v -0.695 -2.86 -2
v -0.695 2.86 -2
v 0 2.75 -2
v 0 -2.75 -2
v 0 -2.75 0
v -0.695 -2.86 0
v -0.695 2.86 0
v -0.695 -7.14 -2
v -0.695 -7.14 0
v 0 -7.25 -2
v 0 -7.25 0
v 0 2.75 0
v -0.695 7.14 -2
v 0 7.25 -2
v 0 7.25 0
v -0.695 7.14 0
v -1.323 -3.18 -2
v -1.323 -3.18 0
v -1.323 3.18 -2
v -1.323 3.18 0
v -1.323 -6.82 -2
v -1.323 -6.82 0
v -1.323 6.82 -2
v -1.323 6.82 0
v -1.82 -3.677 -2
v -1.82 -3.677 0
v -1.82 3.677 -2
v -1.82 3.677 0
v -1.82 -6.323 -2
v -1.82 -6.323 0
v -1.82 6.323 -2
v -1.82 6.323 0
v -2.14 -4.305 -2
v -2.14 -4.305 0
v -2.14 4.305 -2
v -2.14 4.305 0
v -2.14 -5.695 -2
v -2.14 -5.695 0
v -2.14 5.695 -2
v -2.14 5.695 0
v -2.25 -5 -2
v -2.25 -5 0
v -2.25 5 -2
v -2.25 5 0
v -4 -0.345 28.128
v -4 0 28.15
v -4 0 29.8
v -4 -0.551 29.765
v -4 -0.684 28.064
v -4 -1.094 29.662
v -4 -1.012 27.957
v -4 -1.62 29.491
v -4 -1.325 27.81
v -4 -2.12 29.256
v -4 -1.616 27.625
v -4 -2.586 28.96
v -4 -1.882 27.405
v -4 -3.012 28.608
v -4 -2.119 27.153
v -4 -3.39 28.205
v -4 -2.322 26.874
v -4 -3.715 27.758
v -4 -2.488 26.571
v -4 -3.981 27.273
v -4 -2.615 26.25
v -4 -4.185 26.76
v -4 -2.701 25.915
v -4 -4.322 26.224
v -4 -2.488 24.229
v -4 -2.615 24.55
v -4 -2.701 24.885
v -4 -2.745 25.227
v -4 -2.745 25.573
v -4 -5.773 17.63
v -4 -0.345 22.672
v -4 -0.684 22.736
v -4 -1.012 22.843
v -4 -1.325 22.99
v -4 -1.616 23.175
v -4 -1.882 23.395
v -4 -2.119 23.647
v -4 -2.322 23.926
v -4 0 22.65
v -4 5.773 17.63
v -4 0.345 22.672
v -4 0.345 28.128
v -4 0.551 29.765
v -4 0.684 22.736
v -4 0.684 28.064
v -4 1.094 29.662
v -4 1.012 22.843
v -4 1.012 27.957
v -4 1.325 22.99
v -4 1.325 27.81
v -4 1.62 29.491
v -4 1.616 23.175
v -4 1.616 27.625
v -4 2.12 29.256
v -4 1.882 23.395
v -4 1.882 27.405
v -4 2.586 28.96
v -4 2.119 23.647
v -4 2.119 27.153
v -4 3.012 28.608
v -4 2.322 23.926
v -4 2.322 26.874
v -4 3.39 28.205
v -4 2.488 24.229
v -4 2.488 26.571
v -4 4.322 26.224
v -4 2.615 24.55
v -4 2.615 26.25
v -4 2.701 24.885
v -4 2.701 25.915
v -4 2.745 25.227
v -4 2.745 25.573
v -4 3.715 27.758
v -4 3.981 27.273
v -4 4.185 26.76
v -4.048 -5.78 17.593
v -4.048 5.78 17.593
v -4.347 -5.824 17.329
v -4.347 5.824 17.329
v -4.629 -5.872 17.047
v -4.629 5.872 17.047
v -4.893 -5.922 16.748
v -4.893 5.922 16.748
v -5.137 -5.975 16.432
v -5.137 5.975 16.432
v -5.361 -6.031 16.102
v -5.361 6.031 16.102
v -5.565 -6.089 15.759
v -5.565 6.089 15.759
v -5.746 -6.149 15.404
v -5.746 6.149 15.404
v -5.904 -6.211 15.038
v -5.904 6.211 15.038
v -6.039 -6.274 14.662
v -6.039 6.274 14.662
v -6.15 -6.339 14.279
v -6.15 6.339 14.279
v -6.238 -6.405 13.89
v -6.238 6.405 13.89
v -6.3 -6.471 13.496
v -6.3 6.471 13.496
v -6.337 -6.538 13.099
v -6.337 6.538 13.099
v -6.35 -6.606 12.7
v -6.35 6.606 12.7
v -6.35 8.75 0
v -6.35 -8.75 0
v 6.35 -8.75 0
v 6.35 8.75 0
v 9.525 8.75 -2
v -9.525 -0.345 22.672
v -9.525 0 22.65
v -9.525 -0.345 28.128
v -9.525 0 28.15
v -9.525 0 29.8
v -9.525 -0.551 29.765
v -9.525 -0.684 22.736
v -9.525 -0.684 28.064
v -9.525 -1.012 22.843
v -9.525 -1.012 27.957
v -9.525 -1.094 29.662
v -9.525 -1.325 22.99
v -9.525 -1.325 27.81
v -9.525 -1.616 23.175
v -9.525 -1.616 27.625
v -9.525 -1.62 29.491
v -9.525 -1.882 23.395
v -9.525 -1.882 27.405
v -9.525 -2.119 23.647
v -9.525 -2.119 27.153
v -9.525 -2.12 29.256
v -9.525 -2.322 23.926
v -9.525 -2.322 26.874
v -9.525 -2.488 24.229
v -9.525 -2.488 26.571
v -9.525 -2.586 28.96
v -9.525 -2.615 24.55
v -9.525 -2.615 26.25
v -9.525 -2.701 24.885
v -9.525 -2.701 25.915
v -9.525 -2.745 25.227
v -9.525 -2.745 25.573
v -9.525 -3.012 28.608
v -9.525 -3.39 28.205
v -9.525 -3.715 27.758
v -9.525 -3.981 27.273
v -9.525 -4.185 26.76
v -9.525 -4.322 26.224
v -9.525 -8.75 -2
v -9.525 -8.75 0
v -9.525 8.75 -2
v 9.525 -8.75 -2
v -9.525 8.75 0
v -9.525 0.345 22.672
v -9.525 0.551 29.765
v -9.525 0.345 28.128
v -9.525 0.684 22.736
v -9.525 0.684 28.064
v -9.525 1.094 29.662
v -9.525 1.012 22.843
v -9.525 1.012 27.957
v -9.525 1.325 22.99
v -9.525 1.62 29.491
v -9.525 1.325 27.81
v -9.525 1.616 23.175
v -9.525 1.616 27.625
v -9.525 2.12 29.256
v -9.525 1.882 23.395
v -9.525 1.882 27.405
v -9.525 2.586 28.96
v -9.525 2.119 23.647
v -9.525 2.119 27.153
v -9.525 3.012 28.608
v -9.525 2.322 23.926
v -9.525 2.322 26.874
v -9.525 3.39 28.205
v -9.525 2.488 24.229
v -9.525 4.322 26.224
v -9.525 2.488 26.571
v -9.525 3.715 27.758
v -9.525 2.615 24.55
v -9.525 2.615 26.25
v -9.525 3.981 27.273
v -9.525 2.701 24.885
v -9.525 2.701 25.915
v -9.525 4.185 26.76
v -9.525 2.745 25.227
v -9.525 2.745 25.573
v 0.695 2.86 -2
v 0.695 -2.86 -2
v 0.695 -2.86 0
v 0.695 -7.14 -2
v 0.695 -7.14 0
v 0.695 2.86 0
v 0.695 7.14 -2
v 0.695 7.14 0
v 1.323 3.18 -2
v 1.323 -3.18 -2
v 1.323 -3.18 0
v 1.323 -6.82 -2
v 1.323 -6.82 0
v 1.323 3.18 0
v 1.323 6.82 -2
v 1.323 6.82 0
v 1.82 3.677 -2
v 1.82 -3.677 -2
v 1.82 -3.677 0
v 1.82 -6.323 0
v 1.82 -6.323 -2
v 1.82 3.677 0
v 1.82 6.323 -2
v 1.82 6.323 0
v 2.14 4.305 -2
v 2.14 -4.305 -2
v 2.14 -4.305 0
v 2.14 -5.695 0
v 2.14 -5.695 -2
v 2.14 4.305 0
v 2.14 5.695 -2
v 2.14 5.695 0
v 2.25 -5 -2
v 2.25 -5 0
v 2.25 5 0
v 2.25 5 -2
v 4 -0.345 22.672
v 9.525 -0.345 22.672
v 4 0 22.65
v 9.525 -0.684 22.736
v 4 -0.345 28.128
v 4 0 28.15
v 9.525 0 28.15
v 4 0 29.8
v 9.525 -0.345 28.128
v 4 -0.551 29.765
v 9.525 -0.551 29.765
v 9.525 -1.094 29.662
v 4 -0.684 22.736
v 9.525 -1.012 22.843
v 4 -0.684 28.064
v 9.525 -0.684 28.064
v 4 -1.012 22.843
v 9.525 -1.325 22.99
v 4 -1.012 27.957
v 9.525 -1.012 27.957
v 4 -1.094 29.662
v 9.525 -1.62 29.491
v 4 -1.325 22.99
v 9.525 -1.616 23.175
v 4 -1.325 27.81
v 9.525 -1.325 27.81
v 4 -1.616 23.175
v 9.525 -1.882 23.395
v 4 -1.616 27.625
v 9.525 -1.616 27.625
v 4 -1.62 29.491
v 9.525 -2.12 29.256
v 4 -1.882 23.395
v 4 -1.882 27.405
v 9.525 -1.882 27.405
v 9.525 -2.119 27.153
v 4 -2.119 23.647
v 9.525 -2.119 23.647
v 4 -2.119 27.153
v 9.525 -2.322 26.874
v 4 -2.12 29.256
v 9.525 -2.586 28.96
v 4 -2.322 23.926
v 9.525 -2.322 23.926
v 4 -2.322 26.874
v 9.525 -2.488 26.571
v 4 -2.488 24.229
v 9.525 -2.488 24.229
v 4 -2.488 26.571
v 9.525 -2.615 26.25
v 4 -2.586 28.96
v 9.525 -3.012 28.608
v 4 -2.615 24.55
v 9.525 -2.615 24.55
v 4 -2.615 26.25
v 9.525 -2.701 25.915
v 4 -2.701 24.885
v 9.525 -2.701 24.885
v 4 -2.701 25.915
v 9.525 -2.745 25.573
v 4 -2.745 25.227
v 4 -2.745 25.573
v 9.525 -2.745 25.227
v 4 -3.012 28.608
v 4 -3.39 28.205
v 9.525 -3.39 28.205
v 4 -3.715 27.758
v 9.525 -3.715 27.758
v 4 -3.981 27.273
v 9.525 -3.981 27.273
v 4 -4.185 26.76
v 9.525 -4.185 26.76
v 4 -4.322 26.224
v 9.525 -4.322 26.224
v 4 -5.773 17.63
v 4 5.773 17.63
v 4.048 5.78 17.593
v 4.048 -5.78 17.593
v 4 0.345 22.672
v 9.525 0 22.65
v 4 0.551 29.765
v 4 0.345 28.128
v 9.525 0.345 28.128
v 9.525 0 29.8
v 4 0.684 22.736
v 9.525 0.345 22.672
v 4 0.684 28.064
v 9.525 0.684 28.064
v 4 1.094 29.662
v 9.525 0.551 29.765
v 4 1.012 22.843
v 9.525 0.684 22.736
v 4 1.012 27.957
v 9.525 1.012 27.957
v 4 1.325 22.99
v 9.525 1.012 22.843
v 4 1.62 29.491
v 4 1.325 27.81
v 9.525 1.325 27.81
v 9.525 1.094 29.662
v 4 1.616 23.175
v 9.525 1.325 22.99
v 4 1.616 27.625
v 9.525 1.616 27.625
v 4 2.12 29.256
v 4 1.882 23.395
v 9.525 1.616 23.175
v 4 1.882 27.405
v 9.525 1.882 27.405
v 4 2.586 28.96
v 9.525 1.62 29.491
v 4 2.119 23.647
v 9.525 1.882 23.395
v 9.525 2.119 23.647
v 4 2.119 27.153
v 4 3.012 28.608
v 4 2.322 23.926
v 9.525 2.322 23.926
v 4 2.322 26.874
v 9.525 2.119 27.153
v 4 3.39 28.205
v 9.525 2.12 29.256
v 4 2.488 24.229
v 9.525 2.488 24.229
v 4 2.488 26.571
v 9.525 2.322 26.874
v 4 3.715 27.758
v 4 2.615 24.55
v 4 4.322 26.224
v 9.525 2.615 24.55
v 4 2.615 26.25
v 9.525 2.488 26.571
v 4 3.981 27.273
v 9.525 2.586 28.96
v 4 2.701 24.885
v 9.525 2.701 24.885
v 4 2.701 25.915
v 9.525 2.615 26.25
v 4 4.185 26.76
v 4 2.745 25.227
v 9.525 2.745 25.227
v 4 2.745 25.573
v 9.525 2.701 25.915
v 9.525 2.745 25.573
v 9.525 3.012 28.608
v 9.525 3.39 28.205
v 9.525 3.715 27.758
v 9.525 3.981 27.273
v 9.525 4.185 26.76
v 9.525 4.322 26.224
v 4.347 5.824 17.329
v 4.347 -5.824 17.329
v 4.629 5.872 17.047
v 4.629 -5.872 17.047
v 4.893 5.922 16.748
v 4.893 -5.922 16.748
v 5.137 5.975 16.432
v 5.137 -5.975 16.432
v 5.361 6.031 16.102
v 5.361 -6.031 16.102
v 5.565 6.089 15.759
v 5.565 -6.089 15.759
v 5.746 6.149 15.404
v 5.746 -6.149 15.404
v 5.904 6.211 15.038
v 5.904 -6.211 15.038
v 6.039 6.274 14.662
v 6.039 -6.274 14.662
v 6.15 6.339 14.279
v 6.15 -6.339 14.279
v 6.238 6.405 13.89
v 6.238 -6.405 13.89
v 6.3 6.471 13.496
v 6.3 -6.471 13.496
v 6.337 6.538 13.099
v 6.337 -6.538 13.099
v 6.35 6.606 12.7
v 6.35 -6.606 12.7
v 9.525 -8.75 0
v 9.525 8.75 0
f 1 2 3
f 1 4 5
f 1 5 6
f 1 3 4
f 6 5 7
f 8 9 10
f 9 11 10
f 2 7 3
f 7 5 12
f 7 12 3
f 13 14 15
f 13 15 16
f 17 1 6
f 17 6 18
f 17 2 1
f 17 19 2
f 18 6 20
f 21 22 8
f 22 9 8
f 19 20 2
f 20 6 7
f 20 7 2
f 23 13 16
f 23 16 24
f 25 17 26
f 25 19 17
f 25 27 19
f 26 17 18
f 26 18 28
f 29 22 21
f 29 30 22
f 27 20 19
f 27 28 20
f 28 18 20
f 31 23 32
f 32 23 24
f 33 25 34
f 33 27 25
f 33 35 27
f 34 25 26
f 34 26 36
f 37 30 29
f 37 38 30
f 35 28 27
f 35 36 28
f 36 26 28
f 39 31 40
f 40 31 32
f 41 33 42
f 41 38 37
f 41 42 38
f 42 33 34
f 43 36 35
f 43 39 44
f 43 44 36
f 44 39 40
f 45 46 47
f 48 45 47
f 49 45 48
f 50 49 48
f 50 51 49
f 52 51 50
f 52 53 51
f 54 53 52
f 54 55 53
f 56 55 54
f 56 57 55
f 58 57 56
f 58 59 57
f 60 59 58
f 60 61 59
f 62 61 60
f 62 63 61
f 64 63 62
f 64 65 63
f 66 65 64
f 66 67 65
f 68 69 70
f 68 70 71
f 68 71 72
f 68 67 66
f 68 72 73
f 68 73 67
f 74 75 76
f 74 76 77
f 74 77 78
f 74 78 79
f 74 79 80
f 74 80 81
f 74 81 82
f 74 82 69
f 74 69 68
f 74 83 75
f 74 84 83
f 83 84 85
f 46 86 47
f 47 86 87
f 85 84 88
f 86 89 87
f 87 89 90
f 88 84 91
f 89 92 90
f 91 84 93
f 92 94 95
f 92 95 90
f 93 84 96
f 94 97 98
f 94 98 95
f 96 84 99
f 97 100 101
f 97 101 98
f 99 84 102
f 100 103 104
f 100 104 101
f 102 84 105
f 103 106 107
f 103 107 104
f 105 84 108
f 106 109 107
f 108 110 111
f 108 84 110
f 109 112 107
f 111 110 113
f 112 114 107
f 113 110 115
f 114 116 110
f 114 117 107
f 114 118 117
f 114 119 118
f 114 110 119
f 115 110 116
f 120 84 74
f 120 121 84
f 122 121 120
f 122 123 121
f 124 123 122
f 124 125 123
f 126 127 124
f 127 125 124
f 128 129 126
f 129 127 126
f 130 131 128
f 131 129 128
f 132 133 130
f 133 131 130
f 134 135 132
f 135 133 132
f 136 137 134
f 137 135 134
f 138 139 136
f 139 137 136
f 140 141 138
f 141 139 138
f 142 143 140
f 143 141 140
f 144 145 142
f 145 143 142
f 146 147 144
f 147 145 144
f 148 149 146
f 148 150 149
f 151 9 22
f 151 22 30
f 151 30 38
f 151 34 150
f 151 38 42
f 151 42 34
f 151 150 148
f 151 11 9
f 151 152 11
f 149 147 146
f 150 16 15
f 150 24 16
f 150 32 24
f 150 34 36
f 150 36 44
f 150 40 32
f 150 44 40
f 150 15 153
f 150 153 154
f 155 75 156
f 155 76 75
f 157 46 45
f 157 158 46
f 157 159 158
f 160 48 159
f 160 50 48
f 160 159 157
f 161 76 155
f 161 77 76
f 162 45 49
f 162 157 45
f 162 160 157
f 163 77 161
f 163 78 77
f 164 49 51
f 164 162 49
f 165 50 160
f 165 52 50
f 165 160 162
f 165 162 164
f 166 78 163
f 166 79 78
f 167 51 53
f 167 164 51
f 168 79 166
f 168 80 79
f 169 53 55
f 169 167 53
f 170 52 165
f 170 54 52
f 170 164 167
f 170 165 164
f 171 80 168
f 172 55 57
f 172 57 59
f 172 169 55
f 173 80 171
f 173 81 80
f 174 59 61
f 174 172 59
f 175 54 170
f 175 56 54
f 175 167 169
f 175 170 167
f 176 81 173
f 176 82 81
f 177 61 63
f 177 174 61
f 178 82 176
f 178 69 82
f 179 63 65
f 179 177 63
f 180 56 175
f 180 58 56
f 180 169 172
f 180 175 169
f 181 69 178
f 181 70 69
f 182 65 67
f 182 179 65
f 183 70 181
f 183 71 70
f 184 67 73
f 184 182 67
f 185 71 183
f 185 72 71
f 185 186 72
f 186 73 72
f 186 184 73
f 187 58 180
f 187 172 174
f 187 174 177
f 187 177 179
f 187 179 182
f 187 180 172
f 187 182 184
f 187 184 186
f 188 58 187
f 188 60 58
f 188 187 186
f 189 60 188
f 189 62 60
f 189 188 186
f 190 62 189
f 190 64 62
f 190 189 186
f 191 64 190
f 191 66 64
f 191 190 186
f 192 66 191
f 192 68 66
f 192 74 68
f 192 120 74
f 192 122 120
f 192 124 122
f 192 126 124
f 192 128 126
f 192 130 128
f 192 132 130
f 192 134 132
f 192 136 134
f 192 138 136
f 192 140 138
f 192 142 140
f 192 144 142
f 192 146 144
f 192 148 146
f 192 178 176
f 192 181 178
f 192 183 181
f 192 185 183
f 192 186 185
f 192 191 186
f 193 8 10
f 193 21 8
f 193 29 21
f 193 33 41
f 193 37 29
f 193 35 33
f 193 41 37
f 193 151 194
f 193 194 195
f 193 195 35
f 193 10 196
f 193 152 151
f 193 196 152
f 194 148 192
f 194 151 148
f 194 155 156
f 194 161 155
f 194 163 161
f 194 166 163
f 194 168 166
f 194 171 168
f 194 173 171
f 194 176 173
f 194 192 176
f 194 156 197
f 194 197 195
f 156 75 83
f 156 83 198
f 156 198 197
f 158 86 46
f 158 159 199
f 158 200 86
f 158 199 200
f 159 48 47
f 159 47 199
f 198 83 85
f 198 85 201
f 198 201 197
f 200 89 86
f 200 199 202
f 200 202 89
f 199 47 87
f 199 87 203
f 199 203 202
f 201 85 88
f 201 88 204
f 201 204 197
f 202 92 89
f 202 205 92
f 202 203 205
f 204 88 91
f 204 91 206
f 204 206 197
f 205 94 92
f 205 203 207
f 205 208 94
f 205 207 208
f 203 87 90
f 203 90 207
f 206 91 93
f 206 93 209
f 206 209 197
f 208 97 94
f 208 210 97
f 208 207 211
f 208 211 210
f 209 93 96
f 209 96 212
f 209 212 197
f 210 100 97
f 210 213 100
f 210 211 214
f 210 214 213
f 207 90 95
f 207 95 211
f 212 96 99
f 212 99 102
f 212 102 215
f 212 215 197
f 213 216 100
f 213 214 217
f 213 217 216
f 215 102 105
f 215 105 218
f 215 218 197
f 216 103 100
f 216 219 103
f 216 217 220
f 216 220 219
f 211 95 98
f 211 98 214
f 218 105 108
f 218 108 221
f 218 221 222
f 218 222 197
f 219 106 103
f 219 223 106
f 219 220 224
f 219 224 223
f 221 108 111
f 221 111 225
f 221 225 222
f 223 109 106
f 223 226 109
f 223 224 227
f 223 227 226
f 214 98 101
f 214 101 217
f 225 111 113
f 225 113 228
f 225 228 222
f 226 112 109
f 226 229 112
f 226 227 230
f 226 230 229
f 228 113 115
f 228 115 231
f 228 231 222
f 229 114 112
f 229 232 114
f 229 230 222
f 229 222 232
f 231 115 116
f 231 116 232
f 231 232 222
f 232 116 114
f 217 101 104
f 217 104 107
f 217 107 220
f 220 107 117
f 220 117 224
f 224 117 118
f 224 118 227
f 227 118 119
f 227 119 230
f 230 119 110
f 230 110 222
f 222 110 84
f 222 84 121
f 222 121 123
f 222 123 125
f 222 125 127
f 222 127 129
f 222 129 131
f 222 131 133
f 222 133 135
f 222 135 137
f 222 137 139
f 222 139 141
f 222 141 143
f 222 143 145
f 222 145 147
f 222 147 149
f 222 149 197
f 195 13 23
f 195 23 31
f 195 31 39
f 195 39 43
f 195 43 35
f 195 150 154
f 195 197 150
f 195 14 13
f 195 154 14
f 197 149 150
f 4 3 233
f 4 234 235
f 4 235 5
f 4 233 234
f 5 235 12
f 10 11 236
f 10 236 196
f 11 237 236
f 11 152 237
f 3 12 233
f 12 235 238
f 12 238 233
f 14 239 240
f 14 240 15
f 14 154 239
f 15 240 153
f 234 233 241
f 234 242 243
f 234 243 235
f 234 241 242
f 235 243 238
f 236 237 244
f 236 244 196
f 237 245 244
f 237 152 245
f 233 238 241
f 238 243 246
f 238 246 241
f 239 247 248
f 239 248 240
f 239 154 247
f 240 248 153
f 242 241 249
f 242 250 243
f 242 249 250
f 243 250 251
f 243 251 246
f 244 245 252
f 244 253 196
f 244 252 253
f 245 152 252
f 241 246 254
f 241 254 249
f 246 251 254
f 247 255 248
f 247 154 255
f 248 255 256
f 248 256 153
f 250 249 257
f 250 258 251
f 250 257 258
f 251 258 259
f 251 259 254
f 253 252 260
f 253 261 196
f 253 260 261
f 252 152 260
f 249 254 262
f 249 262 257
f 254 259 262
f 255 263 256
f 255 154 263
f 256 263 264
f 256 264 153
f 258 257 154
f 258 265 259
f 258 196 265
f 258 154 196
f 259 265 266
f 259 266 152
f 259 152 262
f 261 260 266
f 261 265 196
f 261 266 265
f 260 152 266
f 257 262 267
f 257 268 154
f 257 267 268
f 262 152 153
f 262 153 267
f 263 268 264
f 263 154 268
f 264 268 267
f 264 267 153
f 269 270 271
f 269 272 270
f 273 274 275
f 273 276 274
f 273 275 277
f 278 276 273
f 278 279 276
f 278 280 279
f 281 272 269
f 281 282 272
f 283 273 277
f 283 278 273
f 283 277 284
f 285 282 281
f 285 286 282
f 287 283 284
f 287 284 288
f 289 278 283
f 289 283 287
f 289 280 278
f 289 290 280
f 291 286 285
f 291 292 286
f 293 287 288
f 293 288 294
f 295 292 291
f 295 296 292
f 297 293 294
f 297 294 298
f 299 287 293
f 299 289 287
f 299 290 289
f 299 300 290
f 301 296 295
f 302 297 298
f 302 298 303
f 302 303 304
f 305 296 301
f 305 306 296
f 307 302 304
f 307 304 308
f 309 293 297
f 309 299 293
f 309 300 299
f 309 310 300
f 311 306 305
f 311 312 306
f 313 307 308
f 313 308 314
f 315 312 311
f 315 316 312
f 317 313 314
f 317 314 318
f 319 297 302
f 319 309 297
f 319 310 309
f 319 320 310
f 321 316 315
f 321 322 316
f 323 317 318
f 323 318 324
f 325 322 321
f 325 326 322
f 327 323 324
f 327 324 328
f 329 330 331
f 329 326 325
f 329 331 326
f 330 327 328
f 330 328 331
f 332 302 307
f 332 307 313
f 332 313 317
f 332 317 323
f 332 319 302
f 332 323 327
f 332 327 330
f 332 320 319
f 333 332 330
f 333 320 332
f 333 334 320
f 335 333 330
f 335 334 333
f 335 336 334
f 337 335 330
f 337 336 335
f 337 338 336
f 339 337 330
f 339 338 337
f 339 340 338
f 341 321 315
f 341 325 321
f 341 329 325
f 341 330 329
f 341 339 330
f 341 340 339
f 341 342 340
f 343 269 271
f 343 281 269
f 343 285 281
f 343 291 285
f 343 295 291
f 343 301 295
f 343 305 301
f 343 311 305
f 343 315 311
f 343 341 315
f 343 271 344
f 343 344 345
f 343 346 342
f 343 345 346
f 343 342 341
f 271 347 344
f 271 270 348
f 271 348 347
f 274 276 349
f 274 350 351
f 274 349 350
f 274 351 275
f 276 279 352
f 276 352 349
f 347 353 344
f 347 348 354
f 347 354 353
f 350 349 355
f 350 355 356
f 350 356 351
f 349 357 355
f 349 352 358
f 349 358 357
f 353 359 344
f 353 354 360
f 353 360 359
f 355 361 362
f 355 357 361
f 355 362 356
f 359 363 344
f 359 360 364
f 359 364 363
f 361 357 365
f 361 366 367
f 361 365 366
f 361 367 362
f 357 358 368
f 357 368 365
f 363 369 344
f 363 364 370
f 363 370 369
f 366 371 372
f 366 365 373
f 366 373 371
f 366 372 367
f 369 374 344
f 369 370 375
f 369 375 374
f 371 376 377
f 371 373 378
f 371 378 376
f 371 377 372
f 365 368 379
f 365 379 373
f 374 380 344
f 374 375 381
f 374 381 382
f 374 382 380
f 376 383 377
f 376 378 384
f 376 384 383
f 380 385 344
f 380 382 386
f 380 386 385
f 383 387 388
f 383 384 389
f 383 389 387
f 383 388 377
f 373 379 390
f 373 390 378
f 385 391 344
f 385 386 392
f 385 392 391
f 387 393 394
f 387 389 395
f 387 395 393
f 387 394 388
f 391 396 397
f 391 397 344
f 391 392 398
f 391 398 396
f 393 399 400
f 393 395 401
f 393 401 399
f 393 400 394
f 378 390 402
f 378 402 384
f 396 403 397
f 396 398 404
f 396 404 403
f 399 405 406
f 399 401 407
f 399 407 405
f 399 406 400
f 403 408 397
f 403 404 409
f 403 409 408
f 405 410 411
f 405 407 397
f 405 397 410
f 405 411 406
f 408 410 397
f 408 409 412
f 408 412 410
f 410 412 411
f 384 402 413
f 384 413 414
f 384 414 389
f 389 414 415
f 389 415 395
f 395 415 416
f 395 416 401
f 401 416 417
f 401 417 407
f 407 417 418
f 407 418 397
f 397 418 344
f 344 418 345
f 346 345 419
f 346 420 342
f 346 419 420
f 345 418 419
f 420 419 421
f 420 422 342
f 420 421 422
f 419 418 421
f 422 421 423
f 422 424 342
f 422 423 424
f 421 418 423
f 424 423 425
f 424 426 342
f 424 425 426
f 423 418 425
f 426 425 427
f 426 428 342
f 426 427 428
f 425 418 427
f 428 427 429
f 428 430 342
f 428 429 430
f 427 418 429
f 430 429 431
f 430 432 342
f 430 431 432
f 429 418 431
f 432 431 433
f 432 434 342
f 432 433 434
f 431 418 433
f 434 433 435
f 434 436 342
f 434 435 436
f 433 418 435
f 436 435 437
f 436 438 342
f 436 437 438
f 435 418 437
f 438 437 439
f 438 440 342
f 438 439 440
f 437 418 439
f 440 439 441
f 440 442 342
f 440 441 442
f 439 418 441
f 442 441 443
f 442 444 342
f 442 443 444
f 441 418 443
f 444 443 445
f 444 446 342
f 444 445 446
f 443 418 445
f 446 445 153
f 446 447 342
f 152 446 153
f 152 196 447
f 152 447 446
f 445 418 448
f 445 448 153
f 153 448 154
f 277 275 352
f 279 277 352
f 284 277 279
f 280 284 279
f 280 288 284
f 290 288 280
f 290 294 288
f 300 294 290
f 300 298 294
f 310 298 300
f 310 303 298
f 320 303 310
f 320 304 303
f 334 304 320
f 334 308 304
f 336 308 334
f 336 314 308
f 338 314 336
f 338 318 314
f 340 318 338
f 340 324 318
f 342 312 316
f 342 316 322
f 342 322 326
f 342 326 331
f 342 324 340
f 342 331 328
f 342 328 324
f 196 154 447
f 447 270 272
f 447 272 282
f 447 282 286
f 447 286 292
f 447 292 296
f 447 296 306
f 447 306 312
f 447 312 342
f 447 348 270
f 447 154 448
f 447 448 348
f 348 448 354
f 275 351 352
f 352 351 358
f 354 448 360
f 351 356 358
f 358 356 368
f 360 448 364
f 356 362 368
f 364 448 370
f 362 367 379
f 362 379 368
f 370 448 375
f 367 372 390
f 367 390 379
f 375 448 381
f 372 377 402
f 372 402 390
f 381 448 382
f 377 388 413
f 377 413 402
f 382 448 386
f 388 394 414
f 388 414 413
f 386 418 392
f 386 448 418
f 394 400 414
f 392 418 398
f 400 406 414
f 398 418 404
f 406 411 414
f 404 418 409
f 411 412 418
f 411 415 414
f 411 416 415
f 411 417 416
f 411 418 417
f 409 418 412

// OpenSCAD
// file: ../parameters.scad
maximum_printable_size = 150;

layer_thickness = 0.3;
global_clearance = 0.5;


// scale parameters
tower_height = 220;
mid_base_width = 400;
mid_base_height = 160;
mid_base_length = 300;
base_mid_base_hinge_offset = 50;
counterweight_length = 200;


//Screw diameter and nut for M10 [mm]
M10_screw_diameter = 10.4;
M10_head_height = 10;
M10_head_diameter = 16+0.5;
M10_nut_height = 10.5;
M10_nut_diameter = 25.5;
M10_nut_pocket = 22.3;

//Screw diameter for M8 [mm]
M8_screw_diameter = 8.6;
M8_head_height = 8;
M8_head_diameter = 13.5;
M8_nut_height = 7.5;
M8_square_nut_thin_height = 4.5;
M8_nut_diameter = 14.4 + 0.5;
M8_nut_pocket = 13 + 0.5;
M8_washer_diameter = 16;
M8_washer_thickness = 1.5;


//Screw diameter and nut for M6 [mm]
M6_screw_diameter=6.5;
M6_head_diameter = 10+0.5;
M6_head_height = 6;
M6_nut_height = 4.9;
M6_nut_diameter = 11.8;
M6_nut_pocket = 10.4;
M6_square_nut_height = 3;
M6_square_nut_diameter = 10;
M6_washer_thickness = 1.6;

//Screw diameter and nut for M5 [mm]
M5_screw_diameter=5.5;
M5_head_height = 5;
M5_head_diameter = 13+0.5;
M5_nut_height = 4.5;
M5_nut_diameter = 9.4;
M5_nut_pocket = 8.4;

//Screw diameter and nut for M4 [mm]
M4_screw_diameter=4.5;
M4_screw_head_height = 4;
M4_nut_height = 3.2;
M4_nut_diameter = 8.4;
M4_nut_pocket = 7.5;

//Screw diameter and nut for M3 [mm]
M3_screw_diameter = 3.2;
M3_nut_height = 2.7;
M3_nut_diameter = 6.6;
M3_nut_pocket = 5.6;
M3_screw_head_height = 3;

//Screw diameter and nut for M2,5 [mm]
M2_5_screw_diameter = 2.7;
M2_5_nut_height = 2.3;
M2_5_nut_diameter = 6;
M2_5_nut_pocket = 5.5;

// kulove lozisko

bearing_efsm_08_h = 33+1;
bearing_efsm_08_m = 22;
bearing_efsm_08_db = 18;
bearing_efsm_08_ag = 10.5;
bearing_efsm_08_n = M4_screw_diameter;
bearing_efsm_08_a1 = 5.5;
bearing_efsm_08_d = 8.25;
bearing_efsm_08_B = 8; // ball height

bearing_efsm_10_h = 38+1;
bearing_efsm_10_m = 26;
bearing_efsm_10_db = 21.9;
bearing_efsm_10_ag = 12+0.2;
bearing_efsm_10_n = M5_screw_diameter;
bearing_efsm_10_a1 = 6.5;
bearing_efsm_10_d = 10.25;


bearing_efsm_12_width = 40+1;
bearing_efsm_12_h = bearing_efsm_12_width;
bearing_efsm_12_boltd = 28/2; // polovina vzdalenosti mezi srouby
bearing_efsm_12_m = bearing_efsm_12_boltd*2;
bearing_efsm_12_db = 25;
bearing_efsm_12_ag = 13;
bearing_efsm_12_a1 = 7;
bearing_efsm_12_n = M5_screw_diameter;
bearing_efsm_12_d = 12.15;
bearing_efsm_12_B = 10; // ball height
bearing_efsm_space = 1;

bearing_efsm_17_width = 54+1;
bearing_efsm_17_h = bearing_efsm_17_width;
bearing_efsm_17_boltd = 38/2; // polovina vzdalenosti mezi srouby
bearing_efsm_17_m = bearing_efsm_17_boltd*2;
bearing_efsm_17_db = 35;
bearing_efsm_17_ag = 18;
bearing_efsm_17_n = M6_screw_diameter;
bearing_efsm_17_a1 = 10;
bearing_efsm_17_B = 17; // ball height

//limcove lozisko
bearing_EFOM_10_L=26; //celkova sirka zakladny
bearing_EFOM_10_d1=10.3;//diametr otvoru real=10 mm
bearing_EFOM_10_dB=22;//diametr vystupku pro ulozeni lozika
bearing_EFOM_10_H=52;//celková delka zakladny
bearing_EFOM_10_J=36;// hole pitch
bearing_EFOM_10_A1=6.5;//vyska pouzdra
bearing_EFOM_10_Ag=12;//celkova vyska
bearing_EFOM_10_N1=5;//sirka otvoru pro sroub
bearing_EFOM_10_N2=8;//delka otvoru pro sroub
bearing_EFOM_10_m=36;//roztec der pro sroub
bearing_EFOM_10_h=9;//vyska lozika


608_bearing_outer_diameter = 22.3;
608_bearing_inner_diameter = 16;
608_bearing_thickness = 7.1;


// 20 KG servo parameters

servo_20kg_axis_offset = 9.375; // jak je osa mimo stredu
servo_20kg_body_x = 42;
servo_20kg_body_y = 21;
servo_20kg_body_z = 40;
servo_20kg_thread_x = 49/2;
servo_20kg_thread_y = 10/2;
servo_20kg_body_below = 10; // jak hluboko je tělo serva pod drzaky na srouby
servo_20kg_below = 25.8; // jak hluboko je páka serva pod drzaky na srouby

servo_20kg_bolt_d = 2.5+0.3;
servo_20kg_nut_d = 5+0.3;


//strain gauge
strain_gauge_width = 12.7;
strain_gauge_length = 75.1;
strain_gauge_screw_distance = 10;

//ALU profile
ALU_profile_width = 30.5;
ALU_profile_holder_wall_thickness = 3;
ALU_profile_groove_width = 8;

//pillow block bearing
//https://www.igus.eu/product/372
//Part no. KSTM-08
KSTM08_screws_distance = 33;         //m
KSTM08_screws_holes_diameter = 4.5;  //d2
KSTM08_flange_thickness = 6;         //h3
KSTM08_case_width = 9;               //C1
KSTM08_case_length = 47;             //a
KSTM08_ball_width = 12;              //B
KSTM08_ball_hole_diameter = 7.85;    //d1


//ložiska pro malý rotor
bearing_outer_diameter = 10.2;    // Rozměr B1 v nákresu s přídavkem na toleranci otvoru
bearing_thickness = 4;        // Rozměr B2 v nákresu
//bearing_shaft_length = 19.5;    // Rozměr B3 v nákresu, Originalni hodnota 19.5
bearing_shaft_length = 20;    // Rozměr B3 v nákresu


//parametry víčka s telemetrickou anténou
S01_sila_materialu=1.2;
S01_vyska_horni_zavit=10;
S01_hloubka_zavitu=4;
S01_prumer_vnitrni=50;
LO_spodni_prumer=17.2;
LO_vyska_bez_krytu=15;
S01_tolerance_zavit=1.5;
R01_vyska_prekryti_statoru=10;

g3_0_cone1 = 70;
g3_0_srcew_dist = 55;
// main file
include <../parameters.scad>

module 888_5002() {
    joint_width = 8;
    
    difference() {
        hull() {
            translate([0, 0, -1])
                cube([strain_gauge_width*1.5, strain_gauge_screw_distance*1.75, 2], center=true);

            translate([0, 0, strain_gauge_width*2])
                rotate([0, 90, 0])
                    cylinder(d=M5_screw_diameter*1.6, h=strain_gauge_width*1.5, center=true, $fn=50);
        }

        translate([0, 0, strain_gauge_width*2])
            rotate([0, 90, 0])
                cylinder(d=M5_screw_diameter, h=strain_gauge_width*2, center=true, $fn=50);

        translate([0, 0, strain_gauge_width/2])
            cube([strain_gauge_width, strain_gauge_width*2, strain_gauge_width], center=true);

        translate([0, 0, strain_gauge_width*3/2])
            cube([joint_width, strain_gauge_width*2, strain_gauge_width*3], center=true);

        translate([0, strain_gauge_screw_distance/2, 0])
            cylinder(d=M4_screw_diameter, h=10, center=true, $fn=20);

        translate([0, -strain_gauge_screw_distance/2, 0])
            cylinder(d=M4_screw_diameter, h=10, center=true, $fn=20);

        translate([0, 0, strain_gauge_width])
            rotate([90, 0, 0])
                cylinder(d=strain_gauge_width, h=strain_gauge_width*2, $fn=100, center=true);
    }
}

888_5002();
